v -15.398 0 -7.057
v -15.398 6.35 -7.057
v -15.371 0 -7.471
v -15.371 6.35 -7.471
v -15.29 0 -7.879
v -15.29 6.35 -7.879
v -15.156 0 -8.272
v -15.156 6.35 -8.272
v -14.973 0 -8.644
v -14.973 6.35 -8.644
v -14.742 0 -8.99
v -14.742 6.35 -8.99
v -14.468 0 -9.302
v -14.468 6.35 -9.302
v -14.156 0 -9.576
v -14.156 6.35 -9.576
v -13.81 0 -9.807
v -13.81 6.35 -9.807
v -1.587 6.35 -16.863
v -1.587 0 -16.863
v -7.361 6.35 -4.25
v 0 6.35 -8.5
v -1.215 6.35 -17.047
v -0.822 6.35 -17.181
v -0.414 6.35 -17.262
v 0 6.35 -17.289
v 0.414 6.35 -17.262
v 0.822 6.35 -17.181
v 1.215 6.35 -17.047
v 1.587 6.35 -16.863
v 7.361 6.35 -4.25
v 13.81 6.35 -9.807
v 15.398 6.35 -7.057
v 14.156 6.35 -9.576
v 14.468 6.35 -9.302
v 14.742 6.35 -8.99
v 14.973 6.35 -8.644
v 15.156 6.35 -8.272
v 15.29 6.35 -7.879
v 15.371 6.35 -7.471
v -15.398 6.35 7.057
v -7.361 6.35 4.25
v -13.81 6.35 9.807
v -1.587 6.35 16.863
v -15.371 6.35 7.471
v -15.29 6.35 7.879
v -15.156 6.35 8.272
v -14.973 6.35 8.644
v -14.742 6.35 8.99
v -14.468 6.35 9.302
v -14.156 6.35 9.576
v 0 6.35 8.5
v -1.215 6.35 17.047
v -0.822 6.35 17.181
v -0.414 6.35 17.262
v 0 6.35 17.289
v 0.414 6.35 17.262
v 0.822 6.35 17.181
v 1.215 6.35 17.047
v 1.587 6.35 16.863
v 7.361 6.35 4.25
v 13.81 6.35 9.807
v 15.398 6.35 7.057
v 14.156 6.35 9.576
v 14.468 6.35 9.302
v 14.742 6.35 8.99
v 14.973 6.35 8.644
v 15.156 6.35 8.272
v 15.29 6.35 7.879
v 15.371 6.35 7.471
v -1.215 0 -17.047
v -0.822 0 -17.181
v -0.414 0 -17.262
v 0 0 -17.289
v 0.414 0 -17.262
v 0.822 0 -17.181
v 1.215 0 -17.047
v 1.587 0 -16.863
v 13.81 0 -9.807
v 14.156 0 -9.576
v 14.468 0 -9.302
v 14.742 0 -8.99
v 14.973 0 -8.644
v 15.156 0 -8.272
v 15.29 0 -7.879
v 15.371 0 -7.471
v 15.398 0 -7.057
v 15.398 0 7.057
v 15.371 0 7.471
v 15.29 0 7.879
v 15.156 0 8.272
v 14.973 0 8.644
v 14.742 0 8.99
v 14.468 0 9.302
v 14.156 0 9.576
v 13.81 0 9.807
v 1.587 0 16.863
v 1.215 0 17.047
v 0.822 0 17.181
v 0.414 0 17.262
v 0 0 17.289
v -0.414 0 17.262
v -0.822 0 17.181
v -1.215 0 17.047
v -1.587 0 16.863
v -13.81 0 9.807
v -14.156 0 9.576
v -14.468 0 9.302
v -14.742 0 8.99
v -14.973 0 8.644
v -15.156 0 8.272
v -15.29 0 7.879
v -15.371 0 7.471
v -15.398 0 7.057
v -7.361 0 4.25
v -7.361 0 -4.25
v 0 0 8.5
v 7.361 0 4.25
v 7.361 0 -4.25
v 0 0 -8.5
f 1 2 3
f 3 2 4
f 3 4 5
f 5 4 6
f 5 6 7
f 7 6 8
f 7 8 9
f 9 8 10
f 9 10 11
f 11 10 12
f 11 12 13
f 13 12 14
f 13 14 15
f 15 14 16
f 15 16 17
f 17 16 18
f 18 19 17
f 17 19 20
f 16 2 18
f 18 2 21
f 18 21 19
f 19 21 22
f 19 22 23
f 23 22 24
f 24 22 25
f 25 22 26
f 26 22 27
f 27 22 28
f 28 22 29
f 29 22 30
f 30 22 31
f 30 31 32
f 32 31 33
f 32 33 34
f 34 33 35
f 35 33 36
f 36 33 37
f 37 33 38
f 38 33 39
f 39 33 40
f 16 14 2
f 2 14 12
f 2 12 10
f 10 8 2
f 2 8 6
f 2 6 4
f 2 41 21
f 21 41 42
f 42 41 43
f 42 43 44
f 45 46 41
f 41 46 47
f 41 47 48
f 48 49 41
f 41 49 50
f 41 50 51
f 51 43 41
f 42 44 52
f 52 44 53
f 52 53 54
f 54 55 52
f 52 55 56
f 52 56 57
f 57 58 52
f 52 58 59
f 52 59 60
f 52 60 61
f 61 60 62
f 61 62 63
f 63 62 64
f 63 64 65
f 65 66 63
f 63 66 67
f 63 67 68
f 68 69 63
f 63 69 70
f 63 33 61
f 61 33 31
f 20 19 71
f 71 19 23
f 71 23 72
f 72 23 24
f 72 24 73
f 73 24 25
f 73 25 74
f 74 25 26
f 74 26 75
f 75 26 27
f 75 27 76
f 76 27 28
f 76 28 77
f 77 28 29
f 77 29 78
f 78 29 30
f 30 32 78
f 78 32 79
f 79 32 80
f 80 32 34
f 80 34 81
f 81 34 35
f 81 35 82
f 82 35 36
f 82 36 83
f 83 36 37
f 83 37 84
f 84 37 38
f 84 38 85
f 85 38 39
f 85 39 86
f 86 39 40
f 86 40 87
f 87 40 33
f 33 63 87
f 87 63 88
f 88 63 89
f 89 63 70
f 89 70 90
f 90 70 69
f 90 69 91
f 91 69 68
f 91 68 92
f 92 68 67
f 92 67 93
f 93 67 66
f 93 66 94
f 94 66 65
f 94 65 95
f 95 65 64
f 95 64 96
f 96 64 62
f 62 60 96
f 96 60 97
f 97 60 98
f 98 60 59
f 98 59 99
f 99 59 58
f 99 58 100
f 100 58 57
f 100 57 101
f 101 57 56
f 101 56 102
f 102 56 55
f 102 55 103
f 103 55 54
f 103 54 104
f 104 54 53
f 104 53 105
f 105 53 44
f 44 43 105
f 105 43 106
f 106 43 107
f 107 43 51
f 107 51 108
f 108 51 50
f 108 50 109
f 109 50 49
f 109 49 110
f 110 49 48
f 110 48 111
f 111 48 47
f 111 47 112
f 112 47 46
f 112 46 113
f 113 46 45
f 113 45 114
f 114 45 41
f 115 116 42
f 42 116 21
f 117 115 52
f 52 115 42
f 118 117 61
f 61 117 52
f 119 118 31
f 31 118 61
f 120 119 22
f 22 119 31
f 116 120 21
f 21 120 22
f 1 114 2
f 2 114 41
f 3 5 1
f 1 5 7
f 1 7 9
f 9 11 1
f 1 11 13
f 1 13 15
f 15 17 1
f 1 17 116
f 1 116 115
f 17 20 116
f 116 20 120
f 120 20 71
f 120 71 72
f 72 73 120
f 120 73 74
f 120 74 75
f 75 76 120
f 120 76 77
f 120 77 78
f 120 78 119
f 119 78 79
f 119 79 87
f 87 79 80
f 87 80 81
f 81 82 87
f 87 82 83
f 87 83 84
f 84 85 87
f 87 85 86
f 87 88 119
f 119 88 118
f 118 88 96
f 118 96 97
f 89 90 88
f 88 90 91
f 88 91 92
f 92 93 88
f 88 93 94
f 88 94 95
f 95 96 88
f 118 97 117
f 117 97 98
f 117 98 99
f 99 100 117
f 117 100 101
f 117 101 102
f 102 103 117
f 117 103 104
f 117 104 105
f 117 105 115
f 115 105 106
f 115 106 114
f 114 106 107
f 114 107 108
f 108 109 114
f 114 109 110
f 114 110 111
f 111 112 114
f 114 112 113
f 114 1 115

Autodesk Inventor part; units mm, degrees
ref_plane "YZ Plane" through (0, 0, 0) normal (1, 0, 0) x (0, 1, 0)
ref_plane "XZ Plane" through (0, 0, 0) normal (0, 1, 0) x (-1, 0, 0)
ref_plane "XY Plane" through (0, 0, 0) normal (0, 0, 1) x (1, 0, 0)
sketch "Sketch1" plane through (0, 0, 0) normal (0, 1, 0) x (-1, 0, 0)
  line L0 (7.3612, -4.25) -> (0, -8.5)
  line L1 (0, -8.5) -> (-7.3612, -4.25)
  line L2 (-7.3612, -4.25) -> (-7.3612, 4.25)
  line L3 (-7.3612, 4.25) -> (0, 8.5)
  line L4 (0, 8.5) -> (7.3612, 4.25)
  line L5 (7.3612, 4.25) -> (7.3612, -4.25)
  line L6 (15.3979, -8.89) -> (0, -17.78)
  line L7 (0, -17.78) -> (-15.3979, -8.89)
  line L8 (-15.3979, -8.89) -> (-15.3979, 8.89)
  line L9 (-15.3979, 8.89) -> (0, 17.78)
  line L10 (0, 17.78) -> (15.3979, 8.89)
  line L11 (15.3979, 8.89) -> (15.3979, -8.89)
  point P0 (0, 0)
  point P1 (0, 0)
  point P2 (0, 0)
  dimension "d0" = 8.5
  dimension "d1" = 17.78
extrude "Extrusion1" add sketch "Sketch1" along normal blind 6.35
fillet "Fillet1" radius 3.175 6 edges at (-15.3979, 3.175, 8.89) (0, 3.175, 17.78) (15.3979, 3.175, 8.89) (15.3979, 3.175, -8.89) (0, 3.175, -17.78) (-15.3979, 3.175, -8.89)
properties part number "Bolt Head_3DPrint"
